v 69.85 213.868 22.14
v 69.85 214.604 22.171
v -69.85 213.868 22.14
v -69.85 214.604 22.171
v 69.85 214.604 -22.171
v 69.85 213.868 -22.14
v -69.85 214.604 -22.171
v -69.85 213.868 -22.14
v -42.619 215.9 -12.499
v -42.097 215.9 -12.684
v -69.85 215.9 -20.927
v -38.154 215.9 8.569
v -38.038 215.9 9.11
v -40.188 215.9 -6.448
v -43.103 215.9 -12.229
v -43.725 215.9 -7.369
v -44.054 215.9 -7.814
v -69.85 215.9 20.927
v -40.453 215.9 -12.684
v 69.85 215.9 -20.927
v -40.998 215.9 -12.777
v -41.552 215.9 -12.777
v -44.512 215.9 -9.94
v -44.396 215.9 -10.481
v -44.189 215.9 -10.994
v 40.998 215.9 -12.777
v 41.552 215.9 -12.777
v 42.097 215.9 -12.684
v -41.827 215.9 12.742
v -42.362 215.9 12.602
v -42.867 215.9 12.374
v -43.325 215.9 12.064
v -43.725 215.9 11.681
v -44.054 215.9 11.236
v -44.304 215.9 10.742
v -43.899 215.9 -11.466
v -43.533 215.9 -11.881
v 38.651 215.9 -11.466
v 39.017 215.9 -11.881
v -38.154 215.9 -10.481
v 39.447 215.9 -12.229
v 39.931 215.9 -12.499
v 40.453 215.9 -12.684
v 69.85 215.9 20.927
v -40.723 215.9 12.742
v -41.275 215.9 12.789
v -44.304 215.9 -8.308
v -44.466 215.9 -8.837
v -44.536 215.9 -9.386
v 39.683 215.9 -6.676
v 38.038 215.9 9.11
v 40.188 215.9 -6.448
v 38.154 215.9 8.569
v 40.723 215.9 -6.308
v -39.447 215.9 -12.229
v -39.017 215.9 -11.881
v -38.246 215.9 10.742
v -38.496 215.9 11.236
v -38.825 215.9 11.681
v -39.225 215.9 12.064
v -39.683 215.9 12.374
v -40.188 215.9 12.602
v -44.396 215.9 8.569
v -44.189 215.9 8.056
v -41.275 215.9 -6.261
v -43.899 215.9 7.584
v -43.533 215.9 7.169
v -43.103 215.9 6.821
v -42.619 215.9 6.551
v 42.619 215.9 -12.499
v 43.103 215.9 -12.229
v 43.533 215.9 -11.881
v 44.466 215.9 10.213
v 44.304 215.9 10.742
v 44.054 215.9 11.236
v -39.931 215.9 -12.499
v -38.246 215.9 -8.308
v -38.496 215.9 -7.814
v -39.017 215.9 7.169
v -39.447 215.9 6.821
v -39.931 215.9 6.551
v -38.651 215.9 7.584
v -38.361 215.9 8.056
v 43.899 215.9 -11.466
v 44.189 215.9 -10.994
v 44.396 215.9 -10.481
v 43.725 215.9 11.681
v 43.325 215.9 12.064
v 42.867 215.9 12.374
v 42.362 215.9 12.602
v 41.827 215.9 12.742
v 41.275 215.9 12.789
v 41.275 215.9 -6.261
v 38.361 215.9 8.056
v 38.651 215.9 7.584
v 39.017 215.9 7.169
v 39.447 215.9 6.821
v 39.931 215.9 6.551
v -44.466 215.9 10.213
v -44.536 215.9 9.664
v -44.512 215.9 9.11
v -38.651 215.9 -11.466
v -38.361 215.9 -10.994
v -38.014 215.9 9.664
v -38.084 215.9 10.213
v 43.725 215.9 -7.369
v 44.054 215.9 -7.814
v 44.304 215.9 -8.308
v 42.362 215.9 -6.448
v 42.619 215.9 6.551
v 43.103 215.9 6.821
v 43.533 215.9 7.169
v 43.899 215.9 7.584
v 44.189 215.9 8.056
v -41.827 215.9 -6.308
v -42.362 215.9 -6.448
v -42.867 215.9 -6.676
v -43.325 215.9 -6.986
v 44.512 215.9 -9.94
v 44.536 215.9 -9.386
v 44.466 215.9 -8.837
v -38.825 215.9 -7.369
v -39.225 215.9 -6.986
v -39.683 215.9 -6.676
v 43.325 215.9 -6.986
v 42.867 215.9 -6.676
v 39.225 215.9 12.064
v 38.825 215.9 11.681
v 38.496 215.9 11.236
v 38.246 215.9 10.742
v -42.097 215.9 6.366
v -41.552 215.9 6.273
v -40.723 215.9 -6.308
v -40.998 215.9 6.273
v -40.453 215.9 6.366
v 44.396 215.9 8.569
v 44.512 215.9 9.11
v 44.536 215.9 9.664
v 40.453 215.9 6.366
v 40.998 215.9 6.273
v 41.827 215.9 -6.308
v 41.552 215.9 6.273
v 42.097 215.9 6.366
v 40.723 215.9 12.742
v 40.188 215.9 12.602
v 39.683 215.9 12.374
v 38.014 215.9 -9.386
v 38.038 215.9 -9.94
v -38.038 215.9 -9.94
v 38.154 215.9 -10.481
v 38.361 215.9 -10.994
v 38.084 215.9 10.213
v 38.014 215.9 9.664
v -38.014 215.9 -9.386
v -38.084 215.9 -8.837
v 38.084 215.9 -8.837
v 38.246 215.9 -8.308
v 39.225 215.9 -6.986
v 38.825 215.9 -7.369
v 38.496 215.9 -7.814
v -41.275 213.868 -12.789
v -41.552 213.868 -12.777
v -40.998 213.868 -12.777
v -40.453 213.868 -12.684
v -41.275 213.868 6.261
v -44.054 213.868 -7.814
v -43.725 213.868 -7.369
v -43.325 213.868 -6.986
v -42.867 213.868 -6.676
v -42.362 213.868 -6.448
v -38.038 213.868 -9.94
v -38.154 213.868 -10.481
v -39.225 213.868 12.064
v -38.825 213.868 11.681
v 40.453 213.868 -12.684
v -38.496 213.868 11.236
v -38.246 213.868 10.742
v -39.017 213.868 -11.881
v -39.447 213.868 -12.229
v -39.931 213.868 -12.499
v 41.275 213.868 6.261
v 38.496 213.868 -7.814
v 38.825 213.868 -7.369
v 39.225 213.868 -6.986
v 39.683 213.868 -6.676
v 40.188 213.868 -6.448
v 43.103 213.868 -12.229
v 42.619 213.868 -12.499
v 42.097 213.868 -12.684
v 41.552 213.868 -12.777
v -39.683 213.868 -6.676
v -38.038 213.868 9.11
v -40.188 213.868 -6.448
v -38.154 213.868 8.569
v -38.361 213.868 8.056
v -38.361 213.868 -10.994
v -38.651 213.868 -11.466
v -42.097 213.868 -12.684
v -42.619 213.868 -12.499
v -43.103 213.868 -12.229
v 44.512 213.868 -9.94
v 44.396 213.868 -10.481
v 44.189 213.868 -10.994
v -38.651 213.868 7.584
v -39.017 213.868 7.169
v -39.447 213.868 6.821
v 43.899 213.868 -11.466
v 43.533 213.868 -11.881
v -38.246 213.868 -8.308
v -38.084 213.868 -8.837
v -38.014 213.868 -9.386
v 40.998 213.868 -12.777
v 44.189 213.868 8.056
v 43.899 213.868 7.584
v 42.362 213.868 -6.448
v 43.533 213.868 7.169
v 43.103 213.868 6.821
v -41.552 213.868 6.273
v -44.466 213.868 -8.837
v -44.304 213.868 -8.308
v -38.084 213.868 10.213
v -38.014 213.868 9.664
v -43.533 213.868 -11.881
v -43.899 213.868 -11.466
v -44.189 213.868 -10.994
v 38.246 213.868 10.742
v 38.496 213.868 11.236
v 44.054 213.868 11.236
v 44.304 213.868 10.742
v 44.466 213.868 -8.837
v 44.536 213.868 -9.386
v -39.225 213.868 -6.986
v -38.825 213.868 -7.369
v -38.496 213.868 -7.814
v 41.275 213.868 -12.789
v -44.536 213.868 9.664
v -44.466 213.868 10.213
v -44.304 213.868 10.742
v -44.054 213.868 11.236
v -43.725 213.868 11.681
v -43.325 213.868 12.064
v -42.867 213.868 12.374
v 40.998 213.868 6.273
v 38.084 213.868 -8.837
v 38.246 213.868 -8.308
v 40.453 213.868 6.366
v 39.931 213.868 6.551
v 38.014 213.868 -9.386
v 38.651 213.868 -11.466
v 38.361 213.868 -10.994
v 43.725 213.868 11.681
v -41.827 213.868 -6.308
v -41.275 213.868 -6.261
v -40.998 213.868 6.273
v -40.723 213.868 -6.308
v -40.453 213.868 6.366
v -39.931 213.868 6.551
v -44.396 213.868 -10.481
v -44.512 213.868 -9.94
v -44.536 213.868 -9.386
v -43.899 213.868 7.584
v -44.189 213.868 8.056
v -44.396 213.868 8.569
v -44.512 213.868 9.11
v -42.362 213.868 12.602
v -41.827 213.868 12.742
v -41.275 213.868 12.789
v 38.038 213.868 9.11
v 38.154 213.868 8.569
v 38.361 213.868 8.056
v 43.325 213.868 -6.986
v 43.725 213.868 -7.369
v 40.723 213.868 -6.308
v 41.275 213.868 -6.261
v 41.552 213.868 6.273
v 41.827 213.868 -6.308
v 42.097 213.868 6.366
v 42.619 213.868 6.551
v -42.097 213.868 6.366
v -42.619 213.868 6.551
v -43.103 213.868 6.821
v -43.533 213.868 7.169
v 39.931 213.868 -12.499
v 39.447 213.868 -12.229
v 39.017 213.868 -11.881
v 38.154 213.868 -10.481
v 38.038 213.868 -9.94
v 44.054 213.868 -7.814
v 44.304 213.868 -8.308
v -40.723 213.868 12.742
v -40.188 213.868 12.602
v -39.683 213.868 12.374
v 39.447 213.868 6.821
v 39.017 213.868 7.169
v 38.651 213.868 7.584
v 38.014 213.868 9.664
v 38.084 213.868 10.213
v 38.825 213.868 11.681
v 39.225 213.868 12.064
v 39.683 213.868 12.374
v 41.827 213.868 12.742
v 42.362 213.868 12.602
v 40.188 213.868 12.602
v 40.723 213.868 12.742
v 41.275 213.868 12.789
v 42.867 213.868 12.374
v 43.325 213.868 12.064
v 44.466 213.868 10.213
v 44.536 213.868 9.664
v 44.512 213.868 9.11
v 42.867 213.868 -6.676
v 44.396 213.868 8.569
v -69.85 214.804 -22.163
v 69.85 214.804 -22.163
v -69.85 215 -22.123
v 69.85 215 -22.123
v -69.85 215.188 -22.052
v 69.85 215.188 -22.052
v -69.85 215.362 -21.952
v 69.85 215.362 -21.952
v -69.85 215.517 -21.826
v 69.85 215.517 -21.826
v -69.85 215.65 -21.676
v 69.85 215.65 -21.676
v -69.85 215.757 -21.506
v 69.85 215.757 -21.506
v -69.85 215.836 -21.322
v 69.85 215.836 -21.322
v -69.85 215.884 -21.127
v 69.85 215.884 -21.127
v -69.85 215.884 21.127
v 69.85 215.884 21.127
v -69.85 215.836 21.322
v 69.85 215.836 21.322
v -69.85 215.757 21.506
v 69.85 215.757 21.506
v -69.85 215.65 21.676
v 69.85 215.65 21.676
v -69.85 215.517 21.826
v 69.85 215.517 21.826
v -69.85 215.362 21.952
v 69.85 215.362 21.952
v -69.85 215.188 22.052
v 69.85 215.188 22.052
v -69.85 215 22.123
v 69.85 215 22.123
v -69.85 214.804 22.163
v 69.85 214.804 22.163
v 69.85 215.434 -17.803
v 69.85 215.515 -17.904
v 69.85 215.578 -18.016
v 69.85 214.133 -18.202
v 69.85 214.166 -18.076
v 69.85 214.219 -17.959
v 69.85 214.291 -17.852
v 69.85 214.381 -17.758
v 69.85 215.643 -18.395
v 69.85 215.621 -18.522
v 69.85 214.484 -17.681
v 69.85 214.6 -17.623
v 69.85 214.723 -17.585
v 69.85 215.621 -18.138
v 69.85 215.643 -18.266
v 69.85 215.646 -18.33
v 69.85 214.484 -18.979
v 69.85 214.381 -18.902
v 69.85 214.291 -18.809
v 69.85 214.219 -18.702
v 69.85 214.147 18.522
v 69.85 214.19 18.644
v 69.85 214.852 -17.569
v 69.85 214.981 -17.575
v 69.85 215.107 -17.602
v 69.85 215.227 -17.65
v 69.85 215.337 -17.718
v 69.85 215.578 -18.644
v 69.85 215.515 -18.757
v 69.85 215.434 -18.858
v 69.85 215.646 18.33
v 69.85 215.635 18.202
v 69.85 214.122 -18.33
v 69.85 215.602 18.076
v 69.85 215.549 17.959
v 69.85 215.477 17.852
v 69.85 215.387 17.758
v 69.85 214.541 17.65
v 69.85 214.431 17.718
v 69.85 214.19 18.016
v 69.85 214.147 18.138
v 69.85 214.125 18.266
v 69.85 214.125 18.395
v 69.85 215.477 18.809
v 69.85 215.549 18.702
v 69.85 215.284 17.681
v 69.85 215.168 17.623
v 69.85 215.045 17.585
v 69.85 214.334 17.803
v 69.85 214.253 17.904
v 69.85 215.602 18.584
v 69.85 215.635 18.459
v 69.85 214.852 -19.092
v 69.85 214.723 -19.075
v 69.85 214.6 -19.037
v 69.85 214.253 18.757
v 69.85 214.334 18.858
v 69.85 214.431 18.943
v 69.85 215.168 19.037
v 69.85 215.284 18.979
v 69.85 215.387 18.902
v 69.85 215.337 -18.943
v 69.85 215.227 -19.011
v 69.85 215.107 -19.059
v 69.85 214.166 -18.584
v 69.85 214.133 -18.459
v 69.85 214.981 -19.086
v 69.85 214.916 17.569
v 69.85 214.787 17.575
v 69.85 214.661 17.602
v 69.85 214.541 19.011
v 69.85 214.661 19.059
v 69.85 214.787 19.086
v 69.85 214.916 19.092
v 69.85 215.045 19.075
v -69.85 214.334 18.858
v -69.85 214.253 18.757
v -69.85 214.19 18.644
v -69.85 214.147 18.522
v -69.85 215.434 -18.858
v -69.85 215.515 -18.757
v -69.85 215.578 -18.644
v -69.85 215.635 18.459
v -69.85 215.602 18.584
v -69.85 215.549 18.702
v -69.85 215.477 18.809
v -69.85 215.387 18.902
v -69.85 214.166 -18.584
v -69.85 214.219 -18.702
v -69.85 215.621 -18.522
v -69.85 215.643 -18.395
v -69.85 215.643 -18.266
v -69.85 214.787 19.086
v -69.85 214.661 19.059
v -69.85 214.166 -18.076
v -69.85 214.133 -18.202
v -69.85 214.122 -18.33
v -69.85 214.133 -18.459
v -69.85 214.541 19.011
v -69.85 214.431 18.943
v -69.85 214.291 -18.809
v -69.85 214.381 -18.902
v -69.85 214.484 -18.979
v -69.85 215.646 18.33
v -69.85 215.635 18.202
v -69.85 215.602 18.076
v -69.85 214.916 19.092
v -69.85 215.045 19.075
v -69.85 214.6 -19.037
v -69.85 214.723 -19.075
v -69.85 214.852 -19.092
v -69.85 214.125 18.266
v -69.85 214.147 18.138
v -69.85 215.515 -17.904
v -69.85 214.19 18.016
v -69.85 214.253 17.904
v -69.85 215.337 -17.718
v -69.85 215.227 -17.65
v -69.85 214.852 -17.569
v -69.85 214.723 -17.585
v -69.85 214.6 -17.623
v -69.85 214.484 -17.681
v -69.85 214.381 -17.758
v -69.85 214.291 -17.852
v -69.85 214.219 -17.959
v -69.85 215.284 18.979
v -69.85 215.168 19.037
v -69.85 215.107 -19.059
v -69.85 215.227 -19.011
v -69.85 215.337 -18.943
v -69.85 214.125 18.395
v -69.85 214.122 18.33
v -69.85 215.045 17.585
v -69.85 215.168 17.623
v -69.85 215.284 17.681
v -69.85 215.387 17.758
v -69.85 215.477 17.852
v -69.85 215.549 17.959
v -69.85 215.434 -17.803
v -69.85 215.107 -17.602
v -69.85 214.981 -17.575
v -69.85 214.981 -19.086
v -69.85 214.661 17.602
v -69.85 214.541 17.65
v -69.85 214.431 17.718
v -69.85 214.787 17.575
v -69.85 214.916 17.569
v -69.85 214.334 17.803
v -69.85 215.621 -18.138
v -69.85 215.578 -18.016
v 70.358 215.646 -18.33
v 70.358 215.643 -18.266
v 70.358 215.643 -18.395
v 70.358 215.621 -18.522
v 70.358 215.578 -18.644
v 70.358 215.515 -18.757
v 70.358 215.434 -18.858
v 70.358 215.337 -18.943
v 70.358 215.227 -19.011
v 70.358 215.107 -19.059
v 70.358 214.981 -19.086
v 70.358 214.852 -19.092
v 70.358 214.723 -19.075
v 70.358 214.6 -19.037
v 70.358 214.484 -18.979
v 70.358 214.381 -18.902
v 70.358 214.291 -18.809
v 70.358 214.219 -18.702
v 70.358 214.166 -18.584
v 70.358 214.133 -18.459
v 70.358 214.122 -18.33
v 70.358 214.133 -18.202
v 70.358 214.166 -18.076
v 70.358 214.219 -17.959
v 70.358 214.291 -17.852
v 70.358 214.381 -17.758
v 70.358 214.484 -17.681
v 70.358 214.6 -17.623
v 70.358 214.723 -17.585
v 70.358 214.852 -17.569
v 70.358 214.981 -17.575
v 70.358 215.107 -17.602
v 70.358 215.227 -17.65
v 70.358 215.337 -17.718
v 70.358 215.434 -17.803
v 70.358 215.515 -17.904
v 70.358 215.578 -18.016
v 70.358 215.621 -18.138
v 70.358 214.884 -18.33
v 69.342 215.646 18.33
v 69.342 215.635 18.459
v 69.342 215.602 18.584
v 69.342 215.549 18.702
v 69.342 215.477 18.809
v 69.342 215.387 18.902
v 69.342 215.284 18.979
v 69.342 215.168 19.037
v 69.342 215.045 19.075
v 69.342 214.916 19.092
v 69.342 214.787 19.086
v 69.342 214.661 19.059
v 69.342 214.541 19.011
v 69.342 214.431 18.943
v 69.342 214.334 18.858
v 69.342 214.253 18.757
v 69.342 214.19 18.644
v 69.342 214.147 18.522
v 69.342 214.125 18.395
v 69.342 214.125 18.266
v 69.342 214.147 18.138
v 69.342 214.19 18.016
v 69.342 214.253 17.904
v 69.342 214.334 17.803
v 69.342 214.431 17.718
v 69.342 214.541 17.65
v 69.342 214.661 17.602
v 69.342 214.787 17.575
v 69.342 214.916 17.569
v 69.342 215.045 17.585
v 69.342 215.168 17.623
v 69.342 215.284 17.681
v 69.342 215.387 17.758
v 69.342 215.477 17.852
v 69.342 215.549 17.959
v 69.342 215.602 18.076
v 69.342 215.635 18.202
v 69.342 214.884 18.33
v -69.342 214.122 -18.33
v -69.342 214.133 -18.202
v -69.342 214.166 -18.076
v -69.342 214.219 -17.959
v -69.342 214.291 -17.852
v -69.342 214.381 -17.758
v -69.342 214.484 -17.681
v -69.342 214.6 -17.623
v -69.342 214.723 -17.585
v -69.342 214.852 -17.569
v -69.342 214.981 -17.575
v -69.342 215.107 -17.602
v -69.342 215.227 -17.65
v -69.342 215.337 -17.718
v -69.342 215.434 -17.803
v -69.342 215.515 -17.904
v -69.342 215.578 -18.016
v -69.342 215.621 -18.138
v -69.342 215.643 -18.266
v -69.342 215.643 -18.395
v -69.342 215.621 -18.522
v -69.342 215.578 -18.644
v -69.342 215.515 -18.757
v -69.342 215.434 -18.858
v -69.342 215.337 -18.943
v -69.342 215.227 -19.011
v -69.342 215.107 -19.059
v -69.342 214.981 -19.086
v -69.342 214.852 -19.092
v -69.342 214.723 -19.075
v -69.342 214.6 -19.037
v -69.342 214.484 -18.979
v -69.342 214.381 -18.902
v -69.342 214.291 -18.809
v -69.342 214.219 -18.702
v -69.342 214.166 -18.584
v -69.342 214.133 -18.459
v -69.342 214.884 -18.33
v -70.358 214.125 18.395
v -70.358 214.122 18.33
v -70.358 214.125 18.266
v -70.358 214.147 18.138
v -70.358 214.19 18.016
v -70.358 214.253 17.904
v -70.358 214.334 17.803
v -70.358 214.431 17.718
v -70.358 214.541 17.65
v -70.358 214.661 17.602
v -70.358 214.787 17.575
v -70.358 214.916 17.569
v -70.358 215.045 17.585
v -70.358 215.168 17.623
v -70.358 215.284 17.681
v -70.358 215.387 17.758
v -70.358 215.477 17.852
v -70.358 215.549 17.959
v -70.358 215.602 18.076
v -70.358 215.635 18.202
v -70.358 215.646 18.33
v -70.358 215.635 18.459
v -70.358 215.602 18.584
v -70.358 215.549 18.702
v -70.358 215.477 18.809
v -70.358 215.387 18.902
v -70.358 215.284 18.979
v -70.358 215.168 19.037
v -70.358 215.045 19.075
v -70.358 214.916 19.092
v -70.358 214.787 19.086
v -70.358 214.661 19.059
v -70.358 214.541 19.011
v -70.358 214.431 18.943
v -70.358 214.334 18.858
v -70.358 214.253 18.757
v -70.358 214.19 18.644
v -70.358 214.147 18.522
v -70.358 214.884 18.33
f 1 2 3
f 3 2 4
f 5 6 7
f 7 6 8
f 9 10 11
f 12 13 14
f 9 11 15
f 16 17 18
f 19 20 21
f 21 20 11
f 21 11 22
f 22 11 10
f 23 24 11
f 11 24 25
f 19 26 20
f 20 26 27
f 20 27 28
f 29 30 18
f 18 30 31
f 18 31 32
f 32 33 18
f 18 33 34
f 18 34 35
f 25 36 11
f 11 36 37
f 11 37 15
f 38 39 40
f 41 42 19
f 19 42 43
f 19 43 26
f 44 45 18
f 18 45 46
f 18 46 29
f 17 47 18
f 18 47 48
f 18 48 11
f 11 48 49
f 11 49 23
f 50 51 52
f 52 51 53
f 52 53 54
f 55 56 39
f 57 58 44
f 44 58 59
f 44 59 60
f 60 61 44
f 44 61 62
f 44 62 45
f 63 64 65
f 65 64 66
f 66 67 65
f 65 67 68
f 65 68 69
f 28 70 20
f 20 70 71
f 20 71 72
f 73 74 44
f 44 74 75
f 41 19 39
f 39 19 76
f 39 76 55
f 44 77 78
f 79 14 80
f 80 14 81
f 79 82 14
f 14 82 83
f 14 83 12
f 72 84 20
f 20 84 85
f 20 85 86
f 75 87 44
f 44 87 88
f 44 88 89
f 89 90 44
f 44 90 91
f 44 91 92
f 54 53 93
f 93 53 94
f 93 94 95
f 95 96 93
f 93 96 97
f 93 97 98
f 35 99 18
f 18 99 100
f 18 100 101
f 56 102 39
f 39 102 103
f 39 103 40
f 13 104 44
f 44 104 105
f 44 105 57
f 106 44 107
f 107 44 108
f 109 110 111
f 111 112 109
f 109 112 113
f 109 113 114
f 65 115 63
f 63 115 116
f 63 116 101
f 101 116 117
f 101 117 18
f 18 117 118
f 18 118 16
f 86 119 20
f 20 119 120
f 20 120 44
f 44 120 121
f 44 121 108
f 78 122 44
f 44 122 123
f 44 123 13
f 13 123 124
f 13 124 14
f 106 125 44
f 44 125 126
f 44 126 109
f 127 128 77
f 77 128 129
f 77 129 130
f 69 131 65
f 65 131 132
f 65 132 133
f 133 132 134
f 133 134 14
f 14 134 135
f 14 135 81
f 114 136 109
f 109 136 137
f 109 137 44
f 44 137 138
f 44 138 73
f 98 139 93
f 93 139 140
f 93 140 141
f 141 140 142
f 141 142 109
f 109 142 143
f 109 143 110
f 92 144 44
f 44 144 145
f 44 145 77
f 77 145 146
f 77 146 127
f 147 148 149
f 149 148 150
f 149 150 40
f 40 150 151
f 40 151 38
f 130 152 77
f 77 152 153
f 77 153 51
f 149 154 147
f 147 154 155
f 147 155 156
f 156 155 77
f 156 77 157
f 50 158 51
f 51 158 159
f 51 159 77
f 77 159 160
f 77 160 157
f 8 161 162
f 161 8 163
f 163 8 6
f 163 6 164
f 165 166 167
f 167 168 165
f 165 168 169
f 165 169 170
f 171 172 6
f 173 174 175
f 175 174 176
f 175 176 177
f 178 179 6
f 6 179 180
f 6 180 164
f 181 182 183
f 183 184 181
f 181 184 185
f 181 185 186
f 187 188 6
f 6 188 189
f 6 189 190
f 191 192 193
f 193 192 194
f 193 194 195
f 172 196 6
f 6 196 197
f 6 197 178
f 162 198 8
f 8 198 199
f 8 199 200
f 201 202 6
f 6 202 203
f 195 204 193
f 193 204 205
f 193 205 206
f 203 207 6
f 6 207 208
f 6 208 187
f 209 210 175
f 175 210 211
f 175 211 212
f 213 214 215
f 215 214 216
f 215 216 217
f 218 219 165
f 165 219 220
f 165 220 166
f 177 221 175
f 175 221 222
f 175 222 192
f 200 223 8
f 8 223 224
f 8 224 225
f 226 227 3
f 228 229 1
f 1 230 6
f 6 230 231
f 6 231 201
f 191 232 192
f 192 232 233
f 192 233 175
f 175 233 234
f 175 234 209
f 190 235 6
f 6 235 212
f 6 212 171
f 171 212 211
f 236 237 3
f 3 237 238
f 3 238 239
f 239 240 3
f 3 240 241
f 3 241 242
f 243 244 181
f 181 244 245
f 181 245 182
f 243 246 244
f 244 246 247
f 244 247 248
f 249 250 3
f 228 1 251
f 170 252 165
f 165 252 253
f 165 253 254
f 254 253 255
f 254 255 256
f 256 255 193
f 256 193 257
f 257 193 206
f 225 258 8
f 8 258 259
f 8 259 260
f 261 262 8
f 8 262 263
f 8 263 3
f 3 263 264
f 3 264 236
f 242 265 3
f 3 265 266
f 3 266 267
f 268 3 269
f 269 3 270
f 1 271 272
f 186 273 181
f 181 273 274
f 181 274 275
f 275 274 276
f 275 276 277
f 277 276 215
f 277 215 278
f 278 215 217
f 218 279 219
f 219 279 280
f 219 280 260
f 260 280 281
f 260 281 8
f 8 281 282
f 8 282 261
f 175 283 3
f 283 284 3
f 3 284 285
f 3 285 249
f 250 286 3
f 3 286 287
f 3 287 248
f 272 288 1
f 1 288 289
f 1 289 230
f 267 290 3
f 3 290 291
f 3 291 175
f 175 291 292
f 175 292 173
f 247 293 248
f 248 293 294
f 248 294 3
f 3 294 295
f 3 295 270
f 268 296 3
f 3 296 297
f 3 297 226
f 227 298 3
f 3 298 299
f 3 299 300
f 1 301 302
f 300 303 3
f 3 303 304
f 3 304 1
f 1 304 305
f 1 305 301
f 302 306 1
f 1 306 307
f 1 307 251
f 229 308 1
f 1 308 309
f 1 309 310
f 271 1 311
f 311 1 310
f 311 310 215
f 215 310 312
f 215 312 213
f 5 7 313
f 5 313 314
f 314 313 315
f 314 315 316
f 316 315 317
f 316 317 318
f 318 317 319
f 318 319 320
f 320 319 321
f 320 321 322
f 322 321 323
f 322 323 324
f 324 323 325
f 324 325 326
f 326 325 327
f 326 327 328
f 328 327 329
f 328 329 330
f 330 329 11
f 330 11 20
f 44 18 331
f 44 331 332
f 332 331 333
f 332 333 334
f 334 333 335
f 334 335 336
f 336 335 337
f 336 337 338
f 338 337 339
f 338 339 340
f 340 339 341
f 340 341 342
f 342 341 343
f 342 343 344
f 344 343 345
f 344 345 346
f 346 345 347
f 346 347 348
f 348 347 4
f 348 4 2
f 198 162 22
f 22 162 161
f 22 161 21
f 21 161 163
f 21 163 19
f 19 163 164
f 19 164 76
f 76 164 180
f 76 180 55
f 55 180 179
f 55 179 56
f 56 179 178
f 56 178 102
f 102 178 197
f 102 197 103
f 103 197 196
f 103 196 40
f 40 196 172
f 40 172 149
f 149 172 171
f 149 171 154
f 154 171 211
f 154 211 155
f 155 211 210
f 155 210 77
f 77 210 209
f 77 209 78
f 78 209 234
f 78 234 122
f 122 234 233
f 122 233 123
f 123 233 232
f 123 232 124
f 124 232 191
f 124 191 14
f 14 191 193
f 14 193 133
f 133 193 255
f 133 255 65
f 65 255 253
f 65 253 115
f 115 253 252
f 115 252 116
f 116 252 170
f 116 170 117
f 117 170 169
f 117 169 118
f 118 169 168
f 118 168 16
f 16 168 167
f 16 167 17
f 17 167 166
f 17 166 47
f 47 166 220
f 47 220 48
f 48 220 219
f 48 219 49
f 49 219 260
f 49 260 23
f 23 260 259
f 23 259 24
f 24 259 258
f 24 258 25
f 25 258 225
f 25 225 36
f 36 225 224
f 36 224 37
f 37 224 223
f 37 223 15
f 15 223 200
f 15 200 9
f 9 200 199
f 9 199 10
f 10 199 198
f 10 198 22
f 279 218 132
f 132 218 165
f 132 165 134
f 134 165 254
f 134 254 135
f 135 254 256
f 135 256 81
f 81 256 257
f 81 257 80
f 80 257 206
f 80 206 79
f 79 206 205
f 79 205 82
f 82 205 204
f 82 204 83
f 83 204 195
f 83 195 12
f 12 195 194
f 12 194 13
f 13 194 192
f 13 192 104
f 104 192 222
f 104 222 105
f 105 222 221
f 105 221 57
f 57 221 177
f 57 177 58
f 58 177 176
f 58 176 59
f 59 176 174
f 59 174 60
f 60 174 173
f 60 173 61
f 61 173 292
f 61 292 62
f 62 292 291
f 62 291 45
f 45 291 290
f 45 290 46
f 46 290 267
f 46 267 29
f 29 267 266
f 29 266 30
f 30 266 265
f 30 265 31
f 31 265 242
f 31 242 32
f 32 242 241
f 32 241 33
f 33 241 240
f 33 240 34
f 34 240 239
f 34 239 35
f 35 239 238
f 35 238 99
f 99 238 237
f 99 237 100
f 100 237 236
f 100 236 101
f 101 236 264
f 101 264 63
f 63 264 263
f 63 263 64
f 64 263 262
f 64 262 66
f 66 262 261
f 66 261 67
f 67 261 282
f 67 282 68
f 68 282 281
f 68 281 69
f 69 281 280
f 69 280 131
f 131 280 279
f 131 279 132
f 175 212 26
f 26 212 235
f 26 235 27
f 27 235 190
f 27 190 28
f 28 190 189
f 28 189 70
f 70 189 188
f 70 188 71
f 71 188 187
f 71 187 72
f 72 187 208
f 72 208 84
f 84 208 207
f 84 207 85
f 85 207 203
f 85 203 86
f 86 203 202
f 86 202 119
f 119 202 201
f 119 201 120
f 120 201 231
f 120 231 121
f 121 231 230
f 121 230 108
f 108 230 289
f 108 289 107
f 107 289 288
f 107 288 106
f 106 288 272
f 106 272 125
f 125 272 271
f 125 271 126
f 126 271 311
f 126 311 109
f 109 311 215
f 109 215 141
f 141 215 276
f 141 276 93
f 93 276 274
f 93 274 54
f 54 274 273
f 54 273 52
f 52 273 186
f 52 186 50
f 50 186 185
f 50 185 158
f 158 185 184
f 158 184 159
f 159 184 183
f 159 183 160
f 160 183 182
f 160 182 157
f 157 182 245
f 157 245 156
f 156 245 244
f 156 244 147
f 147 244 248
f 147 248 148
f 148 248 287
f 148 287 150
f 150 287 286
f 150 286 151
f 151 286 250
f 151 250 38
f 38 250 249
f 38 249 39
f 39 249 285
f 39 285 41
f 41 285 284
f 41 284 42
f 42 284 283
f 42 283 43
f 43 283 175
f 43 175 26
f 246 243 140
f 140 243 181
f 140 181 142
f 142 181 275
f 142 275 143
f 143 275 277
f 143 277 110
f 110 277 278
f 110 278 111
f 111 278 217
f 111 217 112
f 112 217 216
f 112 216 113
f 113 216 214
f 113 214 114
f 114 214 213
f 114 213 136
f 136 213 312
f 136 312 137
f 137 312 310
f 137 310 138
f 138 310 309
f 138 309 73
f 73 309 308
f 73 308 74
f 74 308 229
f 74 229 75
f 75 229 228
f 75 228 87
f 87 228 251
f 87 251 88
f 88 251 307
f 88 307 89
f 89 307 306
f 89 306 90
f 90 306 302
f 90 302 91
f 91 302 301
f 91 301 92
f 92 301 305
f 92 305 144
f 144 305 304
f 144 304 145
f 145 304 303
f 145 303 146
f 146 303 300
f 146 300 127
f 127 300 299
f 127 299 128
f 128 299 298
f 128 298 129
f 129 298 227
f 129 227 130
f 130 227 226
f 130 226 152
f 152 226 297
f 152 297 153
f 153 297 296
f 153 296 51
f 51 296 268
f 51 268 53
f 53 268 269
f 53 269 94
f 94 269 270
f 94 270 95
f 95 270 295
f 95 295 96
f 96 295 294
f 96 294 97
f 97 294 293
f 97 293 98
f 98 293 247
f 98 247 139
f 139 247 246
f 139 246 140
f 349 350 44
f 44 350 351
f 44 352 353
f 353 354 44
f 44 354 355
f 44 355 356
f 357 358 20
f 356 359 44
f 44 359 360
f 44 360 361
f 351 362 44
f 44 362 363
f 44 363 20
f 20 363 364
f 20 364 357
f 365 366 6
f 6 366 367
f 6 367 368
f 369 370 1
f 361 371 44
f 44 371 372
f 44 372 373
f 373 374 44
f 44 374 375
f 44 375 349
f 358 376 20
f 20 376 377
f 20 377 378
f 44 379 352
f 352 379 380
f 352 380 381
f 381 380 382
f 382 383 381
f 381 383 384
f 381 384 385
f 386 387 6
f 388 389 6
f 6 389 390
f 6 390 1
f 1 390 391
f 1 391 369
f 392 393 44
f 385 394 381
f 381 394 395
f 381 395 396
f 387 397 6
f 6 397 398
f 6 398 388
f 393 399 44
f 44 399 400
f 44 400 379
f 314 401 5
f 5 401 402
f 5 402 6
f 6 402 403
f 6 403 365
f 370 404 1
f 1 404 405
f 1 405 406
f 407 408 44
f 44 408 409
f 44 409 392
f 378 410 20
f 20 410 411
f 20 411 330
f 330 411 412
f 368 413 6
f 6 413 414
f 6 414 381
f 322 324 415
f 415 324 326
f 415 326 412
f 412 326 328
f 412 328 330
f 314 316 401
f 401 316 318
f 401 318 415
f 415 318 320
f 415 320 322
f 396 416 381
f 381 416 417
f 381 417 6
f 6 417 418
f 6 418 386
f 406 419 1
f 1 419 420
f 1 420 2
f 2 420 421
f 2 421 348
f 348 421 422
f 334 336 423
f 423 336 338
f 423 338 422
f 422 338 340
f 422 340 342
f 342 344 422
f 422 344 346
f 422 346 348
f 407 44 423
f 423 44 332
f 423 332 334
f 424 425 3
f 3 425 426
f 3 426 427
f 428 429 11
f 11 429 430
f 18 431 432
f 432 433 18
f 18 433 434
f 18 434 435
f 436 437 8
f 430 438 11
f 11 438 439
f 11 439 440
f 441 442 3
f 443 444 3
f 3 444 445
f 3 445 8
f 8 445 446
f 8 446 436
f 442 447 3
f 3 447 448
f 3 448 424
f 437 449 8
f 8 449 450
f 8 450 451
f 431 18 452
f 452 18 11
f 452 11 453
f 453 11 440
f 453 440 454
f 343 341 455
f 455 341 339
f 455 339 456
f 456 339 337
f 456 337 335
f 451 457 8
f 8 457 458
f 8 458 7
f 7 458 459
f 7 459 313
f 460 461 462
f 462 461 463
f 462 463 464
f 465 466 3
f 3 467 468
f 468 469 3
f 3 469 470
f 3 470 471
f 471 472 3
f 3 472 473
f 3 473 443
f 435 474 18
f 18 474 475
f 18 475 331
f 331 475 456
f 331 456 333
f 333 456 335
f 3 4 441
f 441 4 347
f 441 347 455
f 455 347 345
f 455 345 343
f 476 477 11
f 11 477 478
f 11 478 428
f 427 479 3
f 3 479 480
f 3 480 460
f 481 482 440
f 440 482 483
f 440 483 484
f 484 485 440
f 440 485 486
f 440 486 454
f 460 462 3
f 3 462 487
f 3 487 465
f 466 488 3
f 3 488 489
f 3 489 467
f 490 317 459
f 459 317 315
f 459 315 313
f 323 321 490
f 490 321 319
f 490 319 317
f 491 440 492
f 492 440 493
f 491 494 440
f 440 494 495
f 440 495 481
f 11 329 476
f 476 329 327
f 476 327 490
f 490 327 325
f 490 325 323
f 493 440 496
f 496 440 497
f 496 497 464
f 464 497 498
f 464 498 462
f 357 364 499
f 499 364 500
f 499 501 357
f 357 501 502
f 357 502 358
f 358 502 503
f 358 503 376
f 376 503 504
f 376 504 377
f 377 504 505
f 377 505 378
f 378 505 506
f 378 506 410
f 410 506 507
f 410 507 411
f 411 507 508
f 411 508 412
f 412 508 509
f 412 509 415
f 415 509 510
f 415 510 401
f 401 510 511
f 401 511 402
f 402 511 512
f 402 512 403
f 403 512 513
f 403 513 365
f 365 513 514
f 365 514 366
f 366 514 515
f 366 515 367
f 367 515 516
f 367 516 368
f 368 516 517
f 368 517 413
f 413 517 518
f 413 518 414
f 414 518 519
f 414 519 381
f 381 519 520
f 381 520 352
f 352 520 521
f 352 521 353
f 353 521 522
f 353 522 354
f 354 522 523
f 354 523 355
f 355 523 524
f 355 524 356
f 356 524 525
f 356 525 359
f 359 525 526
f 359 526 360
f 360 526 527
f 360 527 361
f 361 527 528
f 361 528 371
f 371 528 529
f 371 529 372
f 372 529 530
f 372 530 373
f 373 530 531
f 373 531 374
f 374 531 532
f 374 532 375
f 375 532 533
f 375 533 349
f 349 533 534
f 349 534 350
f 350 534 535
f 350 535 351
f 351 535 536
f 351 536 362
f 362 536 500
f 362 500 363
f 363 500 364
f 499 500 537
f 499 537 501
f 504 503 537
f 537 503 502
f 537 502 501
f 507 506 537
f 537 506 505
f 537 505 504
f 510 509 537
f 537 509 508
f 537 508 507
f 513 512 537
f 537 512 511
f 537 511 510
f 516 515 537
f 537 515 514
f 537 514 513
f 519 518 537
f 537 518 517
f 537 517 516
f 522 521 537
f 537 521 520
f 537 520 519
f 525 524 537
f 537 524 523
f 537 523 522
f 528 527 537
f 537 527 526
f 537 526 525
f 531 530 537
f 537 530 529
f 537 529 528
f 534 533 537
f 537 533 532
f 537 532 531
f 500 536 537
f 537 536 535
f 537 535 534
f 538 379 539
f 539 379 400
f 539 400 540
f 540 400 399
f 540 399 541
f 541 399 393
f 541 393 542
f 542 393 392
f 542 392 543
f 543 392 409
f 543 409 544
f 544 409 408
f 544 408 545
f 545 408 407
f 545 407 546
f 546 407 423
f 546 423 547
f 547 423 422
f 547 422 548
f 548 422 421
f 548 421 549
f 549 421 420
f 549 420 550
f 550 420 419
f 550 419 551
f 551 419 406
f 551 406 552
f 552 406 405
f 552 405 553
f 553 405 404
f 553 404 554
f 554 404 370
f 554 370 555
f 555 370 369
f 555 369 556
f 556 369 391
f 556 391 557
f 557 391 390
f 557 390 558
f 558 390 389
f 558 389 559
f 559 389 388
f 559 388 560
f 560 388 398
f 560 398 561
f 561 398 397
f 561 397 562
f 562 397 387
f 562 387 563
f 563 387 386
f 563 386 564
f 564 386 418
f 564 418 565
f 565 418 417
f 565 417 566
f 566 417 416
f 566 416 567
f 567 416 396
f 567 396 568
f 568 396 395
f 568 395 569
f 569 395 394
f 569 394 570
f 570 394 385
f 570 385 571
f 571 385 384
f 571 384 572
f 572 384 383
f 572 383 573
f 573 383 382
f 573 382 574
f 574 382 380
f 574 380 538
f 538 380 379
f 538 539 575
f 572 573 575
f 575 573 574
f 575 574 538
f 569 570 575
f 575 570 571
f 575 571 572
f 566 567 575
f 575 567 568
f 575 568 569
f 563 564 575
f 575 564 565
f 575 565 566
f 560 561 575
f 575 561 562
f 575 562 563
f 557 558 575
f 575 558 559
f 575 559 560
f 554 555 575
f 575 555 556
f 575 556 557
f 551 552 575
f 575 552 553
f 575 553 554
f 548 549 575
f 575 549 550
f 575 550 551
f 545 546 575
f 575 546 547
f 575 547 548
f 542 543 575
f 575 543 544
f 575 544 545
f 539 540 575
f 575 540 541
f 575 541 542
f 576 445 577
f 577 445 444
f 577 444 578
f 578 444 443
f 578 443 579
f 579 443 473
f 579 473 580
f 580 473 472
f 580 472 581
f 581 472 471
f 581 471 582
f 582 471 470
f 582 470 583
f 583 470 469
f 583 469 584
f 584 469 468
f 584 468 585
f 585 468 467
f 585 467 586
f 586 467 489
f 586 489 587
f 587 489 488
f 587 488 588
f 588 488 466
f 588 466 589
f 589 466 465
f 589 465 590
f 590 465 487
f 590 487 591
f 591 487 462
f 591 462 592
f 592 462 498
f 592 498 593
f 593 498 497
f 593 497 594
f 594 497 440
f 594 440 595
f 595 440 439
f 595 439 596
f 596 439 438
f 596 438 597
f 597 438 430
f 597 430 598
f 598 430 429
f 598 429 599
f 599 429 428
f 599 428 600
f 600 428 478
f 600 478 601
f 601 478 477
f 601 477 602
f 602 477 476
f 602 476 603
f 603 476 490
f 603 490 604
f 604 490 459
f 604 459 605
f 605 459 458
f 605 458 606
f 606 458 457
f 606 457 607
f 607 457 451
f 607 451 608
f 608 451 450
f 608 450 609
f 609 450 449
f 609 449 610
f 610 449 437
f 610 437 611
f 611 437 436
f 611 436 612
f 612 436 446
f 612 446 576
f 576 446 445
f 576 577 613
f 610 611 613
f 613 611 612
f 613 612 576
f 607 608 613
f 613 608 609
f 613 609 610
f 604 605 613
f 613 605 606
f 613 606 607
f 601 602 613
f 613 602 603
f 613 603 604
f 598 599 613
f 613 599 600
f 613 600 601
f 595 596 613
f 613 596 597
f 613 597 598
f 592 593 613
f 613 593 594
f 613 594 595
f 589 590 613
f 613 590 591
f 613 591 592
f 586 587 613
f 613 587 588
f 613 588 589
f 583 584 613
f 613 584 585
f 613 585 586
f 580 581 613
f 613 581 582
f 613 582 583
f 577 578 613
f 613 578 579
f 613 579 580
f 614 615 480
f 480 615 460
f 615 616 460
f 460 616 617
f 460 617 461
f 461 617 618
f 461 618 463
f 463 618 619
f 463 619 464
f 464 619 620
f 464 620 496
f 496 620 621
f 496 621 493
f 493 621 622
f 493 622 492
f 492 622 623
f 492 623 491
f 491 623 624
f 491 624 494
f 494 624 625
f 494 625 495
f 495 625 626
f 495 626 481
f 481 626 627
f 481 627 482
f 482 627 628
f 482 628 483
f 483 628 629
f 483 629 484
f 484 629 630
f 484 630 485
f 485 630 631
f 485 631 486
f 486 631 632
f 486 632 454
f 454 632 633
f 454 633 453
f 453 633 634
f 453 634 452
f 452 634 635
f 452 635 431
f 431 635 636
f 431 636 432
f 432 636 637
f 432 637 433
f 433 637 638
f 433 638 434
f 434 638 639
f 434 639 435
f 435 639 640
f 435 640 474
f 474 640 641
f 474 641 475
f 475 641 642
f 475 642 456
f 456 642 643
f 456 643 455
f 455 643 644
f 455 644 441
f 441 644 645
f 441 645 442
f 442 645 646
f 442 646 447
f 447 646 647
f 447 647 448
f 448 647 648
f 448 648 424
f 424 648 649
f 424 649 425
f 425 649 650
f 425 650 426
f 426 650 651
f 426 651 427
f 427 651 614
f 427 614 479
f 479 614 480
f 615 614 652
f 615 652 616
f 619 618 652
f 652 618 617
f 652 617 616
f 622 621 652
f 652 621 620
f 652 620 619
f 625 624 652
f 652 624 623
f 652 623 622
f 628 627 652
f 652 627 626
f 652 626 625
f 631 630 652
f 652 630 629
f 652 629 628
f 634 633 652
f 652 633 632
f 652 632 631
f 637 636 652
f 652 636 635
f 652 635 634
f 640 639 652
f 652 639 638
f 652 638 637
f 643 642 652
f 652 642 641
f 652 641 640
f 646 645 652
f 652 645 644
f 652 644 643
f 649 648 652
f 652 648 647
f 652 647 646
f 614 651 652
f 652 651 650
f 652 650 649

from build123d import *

# Parameters (mm, degrees)
BOSS_EXTRUDE1_DEPTH            = 22.225
CUT_EXTRUDE1_REACH             = 331.298
SKETCH2_R                      = 4.7625
CUT_EXTRUDE1_DIRECTION_2_REACH = 331.298
CUT_EXTRUDE2_DEPTH             = 254
FILLET1_R                      = 12.7
FILLET4_R                      = 1.2446
F_1_4_CLEARANCE_HOLE1_D        = 6.5278
F_1_4_CLEARANCE_HOLE1_DEPTH    = 6.35
F_1_4_CLEARANCE_HOLE1_TIP      = 1.961148974
SKETCH6_W                      = 65.609477097
SKETCH6_H                      = 246.187780251
CUT_EXTRUDE3_DEPTH             = 200.66
SKETCH7_W                      = 53.894876093
SKETCH7_H                      = 277.088175353
CUT_EXTRUDE4_DEPTH             = 200.66
SKETCH8_R                      = 0.762
BOSS_EXTRUDE2_DEPTH            = 0.508
SKETCH9_R                      = 0.762
CUT_EXTRUDE5_DEPTH             = 0.508
SKETCH10_R                     = 0.762
CUT_EXTRUDE6_DEPTH             = 0.508
SKETCH11_R                     = 0.762
BOSS_EXTRUDE3_DEPTH            = 0.508


with BuildPart() as part:
    # Sketch1 → Boss-Extrude1 (new, symmetric)
    with BuildSketch(Plane.XY):
        with BuildLine():
            add(Edge.make_bspline(
                [(247.65, 12.7), (247.65, 151.138652105), (159.851901214, 215.9), (69.85, 215.9)],
                knots=[0, 0, 0, 0, 1, 1, 1, 1], degree=3))
            Line((69.85, 215.9), (-69.85, 215.9))
            add(Edge.make_bspline(
                [(-69.85, 215.9), (-159.851901214, 215.9), (-247.65, 151.138652105), (-247.65, 12.7)],
                knots=[0, 0, 0, 0, 1, 1, 1, 1], degree=3))
            Line((-247.65, 12.7), (-247.65, -12.7))
            Line((-247.65, -12.7), (-245.618, -12.7))
            Line((-245.618, -12.7), (-245.618, 12.7))
            add(Edge.make_bspline(
                [(-69.85, 213.868), (-75.40386678, 213.868), (-86.529134162, 213.367524052), (-108.503296863, 210.348405687), (-135.224023579, 202.760511588), (-165.078062417, 187.457160851), (-187.304904565, 169.454437631), (-203.008125467, 151.842675097), (-213.624406237, 137.012147223), (-222.956422719, 120.542434531), (-230.879834274, 102.41559311), (-237.26896978, 82.613605898), (-241.209008074, 64.702111997), (-243.466672055, 49.517673174), (-244.696729955, 37.702743517), (-245.322441099, 27.489835839), (-245.575395866, 19.120958406), (-245.618, 14.831688899), (-245.618, 12.7)],
                knots=[0, 0, 0, 0, 0.0625, 0.125, 0.25, 0.375, 0.5, 0.5625, 0.625, 0.6875, 0.75, 0.8125, 0.875, 0.90625, 0.9375, 0.96875, 0.984375, 1, 1, 1, 1], degree=3))
            Line((-69.85, 213.868), (69.85, 213.868))
            add(Edge.make_bspline(
                [(245.618, 12.7), (245.618, 14.831688899), (245.575395866, 19.120958406), (245.322441099, 27.489835839), (244.696729955, 37.702743517), (243.466672055, 49.517673174), (241.209008074, 64.702111997), (237.26896978, 82.613605898), (230.879834274, 102.41559311), (222.956422719, 120.542434531), (213.624406237, 137.012147223), (203.008125467, 151.842675097), (187.304904565, 169.454437631), (165.078062417, 187.457160851), (135.224023579, 202.760511588), (108.503296863, 210.348405687), (86.529134162, 213.367524052), (75.40386678, 213.868), (69.85, 213.868)],
                knots=[0, 0, 0, 0, 0.015625, 0.03125, 0.0625, 0.09375, 0.125, 0.1875, 0.25, 0.3125, 0.375, 0.4375, 0.5, 0.625, 0.75, 0.875, 0.9375, 1, 1, 1, 1], degree=3))
            Line((245.618, 12.7), (245.618, -12.7))
            Line((245.618, -12.7), (247.65, -12.7))
            Line((247.65, -12.7), (247.65, 12.7))
        make_face()
    extrude(amount=BOSS_EXTRUDE1_DEPTH, both=True)

    # Sketch2 → Cut-Extrude1 (cut, up to next)
    with BuildSketch(Plane(origin=(0, 0, 0), x_dir=(0, 0, -1), z_dir=(1, 0, 0)), mode=Mode.PRIVATE) as cut_extrude1_sk1:
        Circle(SKETCH2_R)
    cut_extrude1_tool1 = extrude(cut_extrude1_sk1.sketch, amount=-CUT_EXTRUDE1_REACH, mode=Mode.PRIVATE) & part.part
    add(cut_extrude1_tool1.solids().sort_by_distance((0, 0, 0))[0], mode=Mode.SUBTRACT)

    # Sketch2 → Cut-Extrude1 direction 2 (cut, up to next)
    with BuildSketch(Plane(origin=(0, 0, 0), x_dir=(0, 0, -1), z_dir=(1, 0, 0)), mode=Mode.PRIVATE) as cut_extrude1_direction_2_sk1:
        Circle(SKETCH2_R)
    cut_extrude1_direction_2_tool1 = extrude(cut_extrude1_direction_2_sk1.sketch, amount=CUT_EXTRUDE1_DIRECTION_2_REACH, mode=Mode.PRIVATE) & part.part
    add(cut_extrude1_direction_2_tool1.solids().sort_by_distance((0, 0, 0))[0], mode=Mode.SUBTRACT)

    # Sketch3 → Cut-Extrude2 (cut, symmetric)
    with BuildSketch(Plane(origin=(0, 0, 0), x_dir=(0, 0, -1), z_dir=(1, 0, 0))):
        Polygon((-22.225, 215.9), (-12.7, -12.7), (-47.625, -12.7), (-47.625, 215.9), align=None)
        Polygon((22.225, 215.9), (12.7, -12.7), (47.625, -12.7), (47.625, 215.9), align=None)
    extrude(amount=CUT_EXTRUDE2_DEPTH, both=True, mode=Mode.SUBTRACT)

    # Fillet1
    fillet1_edges = [part.edges().sort_by_distance(p)[0] for p in [
        (-246.634, -12.7, -12.7),
        (-246.634, -12.7, 12.7),
        (246.634, -12.7, -12.7),
        (246.634, -12.7, 12.7),
    ]]
    fillet(fillet1_edges, radius=FILLET1_R)

    # Fillet4
    fillet4_edges = [part.edges().sort_by_distance(p)[0] for p in [
        (247.65, -9.165276607, -9.309489742),
        (247.65, 6.085646041, -13.482735252),
        (-247.65, -9.165276607, -9.309489742),
        (-247.65, 6.085646041, -13.482735252),
        (247.65, -9.165276607, 9.309489742),
        (247.65, 6.085646041, 13.482735252),
        (-247.65, -9.165276607, 9.309489742),
        (-247.65, 6.085646041, 13.482735252),
        (0, 215.9, 22.225),
        (-203.084938623, 154.469294773, 19.665387282),
        (-247.65, -12.7, 0),
        (-203.084938623, 154.469294773, -19.665387282),
        (0, 215.9, -22.225),
        (203.084938625, 154.469294774, -19.665387282),
        (247.65, -12.7, 0),
        (203.084938625, 154.469294774, 19.665387282),
    ]]
    fillet(fillet4_edges, radius=FILLET4_R)

    # 1/4 Clearance Hole1
    with Locations(Plane(origin=(5.734151724, 215.9, -6.658847299), x_dir=(1, 0, 0), z_dir=(0, 1, 0))):
        with Locations((35.540848276, -16.183847299), (35.540848276, 2.866152701), (-47.009151724, -16.183847299), (-47.009151724, 2.866152701)):
            Hole(F_1_4_CLEARANCE_HOLE1_D / 2, depth=F_1_4_CLEARANCE_HOLE1_DEPTH)
            with Locations((0, 0, -(F_1_4_CLEARANCE_HOLE1_DEPTH + F_1_4_CLEARANCE_HOLE1_TIP / 2))):  # 118° drill point
                Cone(0, F_1_4_CLEARANCE_HOLE1_D / 2, F_1_4_CLEARANCE_HOLE1_TIP, mode=Mode.SUBTRACT)

    # Sketch6 → Cut-Extrude3 (cut)
    with BuildSketch(Plane.ZY.offset(-69.85)):
        with Locations((-2.573891908, 99.039872329)):
            Rectangle(SKETCH6_W, SKETCH6_H)
    extrude(amount=-CUT_EXTRUDE3_DEPTH, mode=Mode.SUBTRACT)

    # Sketch7 → Cut-Extrude4 (cut)
    with BuildSketch(Plane.ZY.offset(69.85)):
        with Locations((-0.531372719, 92.342266691)):
            Rectangle(SKETCH7_W, SKETCH7_H)
    extrude(amount=CUT_EXTRUDE4_DEPTH, mode=Mode.SUBTRACT)

    # Sketch8 → Boss-Extrude2 (add)
    with BuildSketch(Plane(origin=(69.85, 0, 0), x_dir=(0, 0, -1), z_dir=(1, 0, 0))):
        with Locations((18.330333333, 214.884)):
            Circle(SKETCH8_R)
    extrude(amount=BOSS_EXTRUDE2_DEPTH)

    # Sketch9 → Cut-Extrude5 (cut)
    with BuildSketch(Plane(origin=(69.85, 0, 0), x_dir=(0, 0, -1), z_dir=(1, 0, 0))):
        with Locations((-18.330333333, 214.884)):
            Circle(SKETCH9_R)
    extrude(amount=-CUT_EXTRUDE5_DEPTH, mode=Mode.SUBTRACT)

    # Sketch10 → Cut-Extrude6 (cut)
    with BuildSketch(Plane.ZY.offset(69.85)):
        with Locations((-18.330333333, 214.884)):
            Circle(SKETCH10_R)
    extrude(amount=-CUT_EXTRUDE6_DEPTH, mode=Mode.SUBTRACT)

    # Sketch11 → Boss-Extrude3 (add)
    with BuildSketch(Plane.ZY.offset(69.85)):
        with Locations((18.330333333, 214.884)):
            Circle(SKETCH11_R)
    extrude(amount=BOSS_EXTRUDE3_DEPTH)


solid = part.part
